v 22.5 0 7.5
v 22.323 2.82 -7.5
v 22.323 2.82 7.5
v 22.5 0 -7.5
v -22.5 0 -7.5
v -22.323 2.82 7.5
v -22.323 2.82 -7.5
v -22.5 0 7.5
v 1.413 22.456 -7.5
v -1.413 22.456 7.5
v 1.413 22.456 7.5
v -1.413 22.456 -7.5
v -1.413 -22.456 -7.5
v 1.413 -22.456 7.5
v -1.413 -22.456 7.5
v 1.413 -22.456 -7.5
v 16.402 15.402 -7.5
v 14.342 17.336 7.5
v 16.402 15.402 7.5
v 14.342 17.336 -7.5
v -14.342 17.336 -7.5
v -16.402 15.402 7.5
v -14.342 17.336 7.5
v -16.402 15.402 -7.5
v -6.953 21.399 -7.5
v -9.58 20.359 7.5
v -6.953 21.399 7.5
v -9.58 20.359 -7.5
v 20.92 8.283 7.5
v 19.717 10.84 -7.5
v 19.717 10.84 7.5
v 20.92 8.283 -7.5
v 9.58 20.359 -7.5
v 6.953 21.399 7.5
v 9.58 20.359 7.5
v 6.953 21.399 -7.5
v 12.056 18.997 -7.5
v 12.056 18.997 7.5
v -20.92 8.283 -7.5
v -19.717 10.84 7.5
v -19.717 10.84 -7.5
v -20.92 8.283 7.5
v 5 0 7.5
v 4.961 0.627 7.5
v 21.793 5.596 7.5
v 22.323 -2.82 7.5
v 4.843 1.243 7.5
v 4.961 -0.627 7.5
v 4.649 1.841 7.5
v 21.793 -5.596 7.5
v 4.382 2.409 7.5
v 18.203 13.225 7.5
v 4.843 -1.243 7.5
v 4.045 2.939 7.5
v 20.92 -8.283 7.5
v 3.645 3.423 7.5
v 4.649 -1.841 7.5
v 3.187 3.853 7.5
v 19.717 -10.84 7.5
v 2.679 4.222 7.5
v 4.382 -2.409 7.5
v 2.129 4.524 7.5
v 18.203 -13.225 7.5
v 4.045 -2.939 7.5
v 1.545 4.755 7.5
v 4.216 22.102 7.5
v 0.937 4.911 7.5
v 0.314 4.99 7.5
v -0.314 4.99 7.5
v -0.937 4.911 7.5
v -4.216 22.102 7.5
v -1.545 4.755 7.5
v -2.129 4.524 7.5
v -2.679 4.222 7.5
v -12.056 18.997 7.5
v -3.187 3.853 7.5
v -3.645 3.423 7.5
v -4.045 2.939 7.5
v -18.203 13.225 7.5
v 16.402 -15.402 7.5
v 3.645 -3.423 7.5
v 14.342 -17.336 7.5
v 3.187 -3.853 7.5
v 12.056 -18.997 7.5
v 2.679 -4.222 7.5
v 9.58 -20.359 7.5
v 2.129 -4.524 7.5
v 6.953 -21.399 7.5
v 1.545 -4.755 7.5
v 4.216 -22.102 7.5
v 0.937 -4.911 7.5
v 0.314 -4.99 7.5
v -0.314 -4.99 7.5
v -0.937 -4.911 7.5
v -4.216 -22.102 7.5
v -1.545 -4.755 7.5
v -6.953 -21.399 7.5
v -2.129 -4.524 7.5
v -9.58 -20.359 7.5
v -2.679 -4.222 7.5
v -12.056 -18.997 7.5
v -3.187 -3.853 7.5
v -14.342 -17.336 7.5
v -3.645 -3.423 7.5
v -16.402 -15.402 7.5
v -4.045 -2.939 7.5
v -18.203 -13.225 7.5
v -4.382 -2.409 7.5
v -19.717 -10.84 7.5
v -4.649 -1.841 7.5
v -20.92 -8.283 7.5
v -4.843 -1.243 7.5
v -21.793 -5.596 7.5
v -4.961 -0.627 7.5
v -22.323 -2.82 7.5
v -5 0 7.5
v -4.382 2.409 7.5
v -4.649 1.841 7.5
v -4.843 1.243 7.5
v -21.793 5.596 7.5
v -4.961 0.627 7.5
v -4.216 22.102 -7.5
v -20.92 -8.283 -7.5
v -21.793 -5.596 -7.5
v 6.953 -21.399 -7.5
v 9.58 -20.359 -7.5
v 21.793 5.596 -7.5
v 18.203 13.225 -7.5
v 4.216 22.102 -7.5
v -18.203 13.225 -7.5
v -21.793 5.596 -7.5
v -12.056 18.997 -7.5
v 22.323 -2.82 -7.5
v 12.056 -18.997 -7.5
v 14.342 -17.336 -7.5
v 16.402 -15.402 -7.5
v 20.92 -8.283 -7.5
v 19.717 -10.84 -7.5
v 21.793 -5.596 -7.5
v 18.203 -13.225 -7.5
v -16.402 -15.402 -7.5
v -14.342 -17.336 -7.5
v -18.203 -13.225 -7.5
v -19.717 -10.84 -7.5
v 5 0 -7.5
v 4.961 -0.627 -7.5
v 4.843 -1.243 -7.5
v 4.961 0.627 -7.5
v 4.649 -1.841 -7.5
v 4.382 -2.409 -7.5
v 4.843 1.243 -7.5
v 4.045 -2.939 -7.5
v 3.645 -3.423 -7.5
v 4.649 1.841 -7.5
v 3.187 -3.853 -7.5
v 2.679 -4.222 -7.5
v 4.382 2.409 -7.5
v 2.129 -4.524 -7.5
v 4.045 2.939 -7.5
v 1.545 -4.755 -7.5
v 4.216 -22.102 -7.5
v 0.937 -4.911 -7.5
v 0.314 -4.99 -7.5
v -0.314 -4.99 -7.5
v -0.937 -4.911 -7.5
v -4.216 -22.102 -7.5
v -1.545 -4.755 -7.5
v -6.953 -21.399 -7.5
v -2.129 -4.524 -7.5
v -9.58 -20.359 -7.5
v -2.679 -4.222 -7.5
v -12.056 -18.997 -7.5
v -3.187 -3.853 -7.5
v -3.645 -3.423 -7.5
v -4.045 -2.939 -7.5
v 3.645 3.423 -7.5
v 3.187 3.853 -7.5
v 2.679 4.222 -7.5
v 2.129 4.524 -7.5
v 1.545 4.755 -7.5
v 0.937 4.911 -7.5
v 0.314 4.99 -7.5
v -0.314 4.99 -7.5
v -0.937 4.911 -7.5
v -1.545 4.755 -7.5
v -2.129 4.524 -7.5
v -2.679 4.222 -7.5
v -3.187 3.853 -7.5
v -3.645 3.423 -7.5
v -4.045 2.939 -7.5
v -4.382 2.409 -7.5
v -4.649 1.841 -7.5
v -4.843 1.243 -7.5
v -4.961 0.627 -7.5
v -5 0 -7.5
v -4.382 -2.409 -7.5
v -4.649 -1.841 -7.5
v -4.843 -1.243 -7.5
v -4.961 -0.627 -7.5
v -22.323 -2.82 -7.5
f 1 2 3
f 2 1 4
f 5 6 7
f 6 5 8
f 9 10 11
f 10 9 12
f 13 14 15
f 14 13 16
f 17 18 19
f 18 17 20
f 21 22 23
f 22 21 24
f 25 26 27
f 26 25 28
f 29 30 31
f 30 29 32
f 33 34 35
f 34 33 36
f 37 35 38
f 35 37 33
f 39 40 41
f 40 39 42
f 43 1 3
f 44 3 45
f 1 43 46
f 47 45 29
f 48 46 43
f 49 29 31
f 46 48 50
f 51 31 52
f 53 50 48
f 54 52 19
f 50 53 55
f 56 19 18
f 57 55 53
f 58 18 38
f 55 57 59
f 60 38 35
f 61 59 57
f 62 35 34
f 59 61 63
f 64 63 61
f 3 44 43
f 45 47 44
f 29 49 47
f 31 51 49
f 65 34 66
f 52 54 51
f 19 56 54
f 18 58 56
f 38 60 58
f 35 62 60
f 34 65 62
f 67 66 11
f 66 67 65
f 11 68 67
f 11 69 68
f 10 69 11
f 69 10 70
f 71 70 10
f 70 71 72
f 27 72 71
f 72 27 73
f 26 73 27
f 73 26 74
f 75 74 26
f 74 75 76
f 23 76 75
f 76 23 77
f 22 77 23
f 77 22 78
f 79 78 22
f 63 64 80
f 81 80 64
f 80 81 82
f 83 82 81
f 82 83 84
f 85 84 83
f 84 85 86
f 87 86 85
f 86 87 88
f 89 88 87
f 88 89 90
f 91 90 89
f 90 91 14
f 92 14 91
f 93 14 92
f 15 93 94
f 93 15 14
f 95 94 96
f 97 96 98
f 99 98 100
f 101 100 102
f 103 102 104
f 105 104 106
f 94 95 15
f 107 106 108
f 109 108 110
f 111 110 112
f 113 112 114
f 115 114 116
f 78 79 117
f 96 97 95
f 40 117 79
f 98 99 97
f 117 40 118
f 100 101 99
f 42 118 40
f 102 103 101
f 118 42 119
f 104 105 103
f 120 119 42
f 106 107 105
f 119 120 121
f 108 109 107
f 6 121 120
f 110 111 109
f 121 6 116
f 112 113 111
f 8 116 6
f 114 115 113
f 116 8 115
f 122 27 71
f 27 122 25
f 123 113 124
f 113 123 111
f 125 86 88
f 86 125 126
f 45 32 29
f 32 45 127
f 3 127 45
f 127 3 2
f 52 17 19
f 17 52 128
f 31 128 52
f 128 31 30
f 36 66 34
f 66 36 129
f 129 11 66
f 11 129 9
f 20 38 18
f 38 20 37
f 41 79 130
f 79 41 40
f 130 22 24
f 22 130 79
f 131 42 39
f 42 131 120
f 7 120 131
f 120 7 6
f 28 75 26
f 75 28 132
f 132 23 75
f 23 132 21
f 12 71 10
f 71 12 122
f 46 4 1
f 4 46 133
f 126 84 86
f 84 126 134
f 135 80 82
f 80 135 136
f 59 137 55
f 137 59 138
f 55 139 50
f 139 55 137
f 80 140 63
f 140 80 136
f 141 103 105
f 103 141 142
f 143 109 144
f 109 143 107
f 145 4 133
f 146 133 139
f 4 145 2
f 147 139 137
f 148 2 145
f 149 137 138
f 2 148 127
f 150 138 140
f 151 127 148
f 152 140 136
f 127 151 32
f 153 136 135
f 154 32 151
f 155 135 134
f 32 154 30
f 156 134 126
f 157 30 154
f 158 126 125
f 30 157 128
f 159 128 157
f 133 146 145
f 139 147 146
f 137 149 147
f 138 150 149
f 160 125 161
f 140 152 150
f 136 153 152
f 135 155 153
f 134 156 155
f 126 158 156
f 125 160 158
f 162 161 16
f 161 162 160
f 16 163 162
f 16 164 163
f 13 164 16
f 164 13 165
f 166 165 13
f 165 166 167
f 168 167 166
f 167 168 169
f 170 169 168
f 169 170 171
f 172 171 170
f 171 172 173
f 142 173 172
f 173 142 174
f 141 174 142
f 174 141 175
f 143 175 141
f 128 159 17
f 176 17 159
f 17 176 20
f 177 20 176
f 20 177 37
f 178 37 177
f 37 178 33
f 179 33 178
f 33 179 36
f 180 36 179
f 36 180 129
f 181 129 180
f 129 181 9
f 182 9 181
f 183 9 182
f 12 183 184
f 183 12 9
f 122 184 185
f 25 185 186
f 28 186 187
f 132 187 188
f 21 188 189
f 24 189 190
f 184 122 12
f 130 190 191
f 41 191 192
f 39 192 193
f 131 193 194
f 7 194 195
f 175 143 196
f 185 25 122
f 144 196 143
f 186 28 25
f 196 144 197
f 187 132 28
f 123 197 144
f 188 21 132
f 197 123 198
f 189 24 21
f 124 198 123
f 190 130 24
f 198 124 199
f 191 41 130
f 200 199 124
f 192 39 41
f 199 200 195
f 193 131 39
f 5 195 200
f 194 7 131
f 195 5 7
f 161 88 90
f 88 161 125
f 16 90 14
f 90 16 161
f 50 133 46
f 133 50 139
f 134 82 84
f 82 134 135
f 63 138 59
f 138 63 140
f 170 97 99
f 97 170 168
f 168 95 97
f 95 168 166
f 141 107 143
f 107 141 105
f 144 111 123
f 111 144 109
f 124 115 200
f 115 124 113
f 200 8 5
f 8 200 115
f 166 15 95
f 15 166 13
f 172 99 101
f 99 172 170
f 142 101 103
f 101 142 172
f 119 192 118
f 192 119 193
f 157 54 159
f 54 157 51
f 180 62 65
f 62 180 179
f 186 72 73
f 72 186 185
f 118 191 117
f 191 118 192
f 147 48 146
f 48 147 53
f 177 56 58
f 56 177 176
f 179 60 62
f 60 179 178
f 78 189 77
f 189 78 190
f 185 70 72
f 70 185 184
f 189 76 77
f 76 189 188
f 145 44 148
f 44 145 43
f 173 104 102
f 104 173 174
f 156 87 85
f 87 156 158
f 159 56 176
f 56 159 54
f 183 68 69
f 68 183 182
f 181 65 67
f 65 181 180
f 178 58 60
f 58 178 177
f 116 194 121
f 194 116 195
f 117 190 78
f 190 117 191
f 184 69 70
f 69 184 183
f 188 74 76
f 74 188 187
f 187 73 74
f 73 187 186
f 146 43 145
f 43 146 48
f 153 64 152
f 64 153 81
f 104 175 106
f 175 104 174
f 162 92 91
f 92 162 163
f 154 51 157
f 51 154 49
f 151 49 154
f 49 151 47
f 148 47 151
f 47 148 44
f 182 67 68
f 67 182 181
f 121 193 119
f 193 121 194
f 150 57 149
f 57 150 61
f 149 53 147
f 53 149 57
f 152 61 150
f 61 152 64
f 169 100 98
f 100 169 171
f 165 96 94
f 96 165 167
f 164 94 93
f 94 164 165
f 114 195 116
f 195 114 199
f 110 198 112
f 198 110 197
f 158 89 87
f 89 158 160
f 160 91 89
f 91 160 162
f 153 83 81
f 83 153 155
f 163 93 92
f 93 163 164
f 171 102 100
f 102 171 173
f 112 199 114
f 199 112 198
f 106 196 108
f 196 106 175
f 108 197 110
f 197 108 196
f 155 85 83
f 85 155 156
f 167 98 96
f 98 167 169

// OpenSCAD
$fn = 50;


difference() {
	union() {
		translate(v = [0, 0, -7.5000000000]) {
			cylinder(h = 15, r = 22.5000000000);
		}
	}
	union() {
		translate(v = [0, 0, -100.0000000000]) {
			cylinder(h = 200, r = 5);
		}
	}
}
